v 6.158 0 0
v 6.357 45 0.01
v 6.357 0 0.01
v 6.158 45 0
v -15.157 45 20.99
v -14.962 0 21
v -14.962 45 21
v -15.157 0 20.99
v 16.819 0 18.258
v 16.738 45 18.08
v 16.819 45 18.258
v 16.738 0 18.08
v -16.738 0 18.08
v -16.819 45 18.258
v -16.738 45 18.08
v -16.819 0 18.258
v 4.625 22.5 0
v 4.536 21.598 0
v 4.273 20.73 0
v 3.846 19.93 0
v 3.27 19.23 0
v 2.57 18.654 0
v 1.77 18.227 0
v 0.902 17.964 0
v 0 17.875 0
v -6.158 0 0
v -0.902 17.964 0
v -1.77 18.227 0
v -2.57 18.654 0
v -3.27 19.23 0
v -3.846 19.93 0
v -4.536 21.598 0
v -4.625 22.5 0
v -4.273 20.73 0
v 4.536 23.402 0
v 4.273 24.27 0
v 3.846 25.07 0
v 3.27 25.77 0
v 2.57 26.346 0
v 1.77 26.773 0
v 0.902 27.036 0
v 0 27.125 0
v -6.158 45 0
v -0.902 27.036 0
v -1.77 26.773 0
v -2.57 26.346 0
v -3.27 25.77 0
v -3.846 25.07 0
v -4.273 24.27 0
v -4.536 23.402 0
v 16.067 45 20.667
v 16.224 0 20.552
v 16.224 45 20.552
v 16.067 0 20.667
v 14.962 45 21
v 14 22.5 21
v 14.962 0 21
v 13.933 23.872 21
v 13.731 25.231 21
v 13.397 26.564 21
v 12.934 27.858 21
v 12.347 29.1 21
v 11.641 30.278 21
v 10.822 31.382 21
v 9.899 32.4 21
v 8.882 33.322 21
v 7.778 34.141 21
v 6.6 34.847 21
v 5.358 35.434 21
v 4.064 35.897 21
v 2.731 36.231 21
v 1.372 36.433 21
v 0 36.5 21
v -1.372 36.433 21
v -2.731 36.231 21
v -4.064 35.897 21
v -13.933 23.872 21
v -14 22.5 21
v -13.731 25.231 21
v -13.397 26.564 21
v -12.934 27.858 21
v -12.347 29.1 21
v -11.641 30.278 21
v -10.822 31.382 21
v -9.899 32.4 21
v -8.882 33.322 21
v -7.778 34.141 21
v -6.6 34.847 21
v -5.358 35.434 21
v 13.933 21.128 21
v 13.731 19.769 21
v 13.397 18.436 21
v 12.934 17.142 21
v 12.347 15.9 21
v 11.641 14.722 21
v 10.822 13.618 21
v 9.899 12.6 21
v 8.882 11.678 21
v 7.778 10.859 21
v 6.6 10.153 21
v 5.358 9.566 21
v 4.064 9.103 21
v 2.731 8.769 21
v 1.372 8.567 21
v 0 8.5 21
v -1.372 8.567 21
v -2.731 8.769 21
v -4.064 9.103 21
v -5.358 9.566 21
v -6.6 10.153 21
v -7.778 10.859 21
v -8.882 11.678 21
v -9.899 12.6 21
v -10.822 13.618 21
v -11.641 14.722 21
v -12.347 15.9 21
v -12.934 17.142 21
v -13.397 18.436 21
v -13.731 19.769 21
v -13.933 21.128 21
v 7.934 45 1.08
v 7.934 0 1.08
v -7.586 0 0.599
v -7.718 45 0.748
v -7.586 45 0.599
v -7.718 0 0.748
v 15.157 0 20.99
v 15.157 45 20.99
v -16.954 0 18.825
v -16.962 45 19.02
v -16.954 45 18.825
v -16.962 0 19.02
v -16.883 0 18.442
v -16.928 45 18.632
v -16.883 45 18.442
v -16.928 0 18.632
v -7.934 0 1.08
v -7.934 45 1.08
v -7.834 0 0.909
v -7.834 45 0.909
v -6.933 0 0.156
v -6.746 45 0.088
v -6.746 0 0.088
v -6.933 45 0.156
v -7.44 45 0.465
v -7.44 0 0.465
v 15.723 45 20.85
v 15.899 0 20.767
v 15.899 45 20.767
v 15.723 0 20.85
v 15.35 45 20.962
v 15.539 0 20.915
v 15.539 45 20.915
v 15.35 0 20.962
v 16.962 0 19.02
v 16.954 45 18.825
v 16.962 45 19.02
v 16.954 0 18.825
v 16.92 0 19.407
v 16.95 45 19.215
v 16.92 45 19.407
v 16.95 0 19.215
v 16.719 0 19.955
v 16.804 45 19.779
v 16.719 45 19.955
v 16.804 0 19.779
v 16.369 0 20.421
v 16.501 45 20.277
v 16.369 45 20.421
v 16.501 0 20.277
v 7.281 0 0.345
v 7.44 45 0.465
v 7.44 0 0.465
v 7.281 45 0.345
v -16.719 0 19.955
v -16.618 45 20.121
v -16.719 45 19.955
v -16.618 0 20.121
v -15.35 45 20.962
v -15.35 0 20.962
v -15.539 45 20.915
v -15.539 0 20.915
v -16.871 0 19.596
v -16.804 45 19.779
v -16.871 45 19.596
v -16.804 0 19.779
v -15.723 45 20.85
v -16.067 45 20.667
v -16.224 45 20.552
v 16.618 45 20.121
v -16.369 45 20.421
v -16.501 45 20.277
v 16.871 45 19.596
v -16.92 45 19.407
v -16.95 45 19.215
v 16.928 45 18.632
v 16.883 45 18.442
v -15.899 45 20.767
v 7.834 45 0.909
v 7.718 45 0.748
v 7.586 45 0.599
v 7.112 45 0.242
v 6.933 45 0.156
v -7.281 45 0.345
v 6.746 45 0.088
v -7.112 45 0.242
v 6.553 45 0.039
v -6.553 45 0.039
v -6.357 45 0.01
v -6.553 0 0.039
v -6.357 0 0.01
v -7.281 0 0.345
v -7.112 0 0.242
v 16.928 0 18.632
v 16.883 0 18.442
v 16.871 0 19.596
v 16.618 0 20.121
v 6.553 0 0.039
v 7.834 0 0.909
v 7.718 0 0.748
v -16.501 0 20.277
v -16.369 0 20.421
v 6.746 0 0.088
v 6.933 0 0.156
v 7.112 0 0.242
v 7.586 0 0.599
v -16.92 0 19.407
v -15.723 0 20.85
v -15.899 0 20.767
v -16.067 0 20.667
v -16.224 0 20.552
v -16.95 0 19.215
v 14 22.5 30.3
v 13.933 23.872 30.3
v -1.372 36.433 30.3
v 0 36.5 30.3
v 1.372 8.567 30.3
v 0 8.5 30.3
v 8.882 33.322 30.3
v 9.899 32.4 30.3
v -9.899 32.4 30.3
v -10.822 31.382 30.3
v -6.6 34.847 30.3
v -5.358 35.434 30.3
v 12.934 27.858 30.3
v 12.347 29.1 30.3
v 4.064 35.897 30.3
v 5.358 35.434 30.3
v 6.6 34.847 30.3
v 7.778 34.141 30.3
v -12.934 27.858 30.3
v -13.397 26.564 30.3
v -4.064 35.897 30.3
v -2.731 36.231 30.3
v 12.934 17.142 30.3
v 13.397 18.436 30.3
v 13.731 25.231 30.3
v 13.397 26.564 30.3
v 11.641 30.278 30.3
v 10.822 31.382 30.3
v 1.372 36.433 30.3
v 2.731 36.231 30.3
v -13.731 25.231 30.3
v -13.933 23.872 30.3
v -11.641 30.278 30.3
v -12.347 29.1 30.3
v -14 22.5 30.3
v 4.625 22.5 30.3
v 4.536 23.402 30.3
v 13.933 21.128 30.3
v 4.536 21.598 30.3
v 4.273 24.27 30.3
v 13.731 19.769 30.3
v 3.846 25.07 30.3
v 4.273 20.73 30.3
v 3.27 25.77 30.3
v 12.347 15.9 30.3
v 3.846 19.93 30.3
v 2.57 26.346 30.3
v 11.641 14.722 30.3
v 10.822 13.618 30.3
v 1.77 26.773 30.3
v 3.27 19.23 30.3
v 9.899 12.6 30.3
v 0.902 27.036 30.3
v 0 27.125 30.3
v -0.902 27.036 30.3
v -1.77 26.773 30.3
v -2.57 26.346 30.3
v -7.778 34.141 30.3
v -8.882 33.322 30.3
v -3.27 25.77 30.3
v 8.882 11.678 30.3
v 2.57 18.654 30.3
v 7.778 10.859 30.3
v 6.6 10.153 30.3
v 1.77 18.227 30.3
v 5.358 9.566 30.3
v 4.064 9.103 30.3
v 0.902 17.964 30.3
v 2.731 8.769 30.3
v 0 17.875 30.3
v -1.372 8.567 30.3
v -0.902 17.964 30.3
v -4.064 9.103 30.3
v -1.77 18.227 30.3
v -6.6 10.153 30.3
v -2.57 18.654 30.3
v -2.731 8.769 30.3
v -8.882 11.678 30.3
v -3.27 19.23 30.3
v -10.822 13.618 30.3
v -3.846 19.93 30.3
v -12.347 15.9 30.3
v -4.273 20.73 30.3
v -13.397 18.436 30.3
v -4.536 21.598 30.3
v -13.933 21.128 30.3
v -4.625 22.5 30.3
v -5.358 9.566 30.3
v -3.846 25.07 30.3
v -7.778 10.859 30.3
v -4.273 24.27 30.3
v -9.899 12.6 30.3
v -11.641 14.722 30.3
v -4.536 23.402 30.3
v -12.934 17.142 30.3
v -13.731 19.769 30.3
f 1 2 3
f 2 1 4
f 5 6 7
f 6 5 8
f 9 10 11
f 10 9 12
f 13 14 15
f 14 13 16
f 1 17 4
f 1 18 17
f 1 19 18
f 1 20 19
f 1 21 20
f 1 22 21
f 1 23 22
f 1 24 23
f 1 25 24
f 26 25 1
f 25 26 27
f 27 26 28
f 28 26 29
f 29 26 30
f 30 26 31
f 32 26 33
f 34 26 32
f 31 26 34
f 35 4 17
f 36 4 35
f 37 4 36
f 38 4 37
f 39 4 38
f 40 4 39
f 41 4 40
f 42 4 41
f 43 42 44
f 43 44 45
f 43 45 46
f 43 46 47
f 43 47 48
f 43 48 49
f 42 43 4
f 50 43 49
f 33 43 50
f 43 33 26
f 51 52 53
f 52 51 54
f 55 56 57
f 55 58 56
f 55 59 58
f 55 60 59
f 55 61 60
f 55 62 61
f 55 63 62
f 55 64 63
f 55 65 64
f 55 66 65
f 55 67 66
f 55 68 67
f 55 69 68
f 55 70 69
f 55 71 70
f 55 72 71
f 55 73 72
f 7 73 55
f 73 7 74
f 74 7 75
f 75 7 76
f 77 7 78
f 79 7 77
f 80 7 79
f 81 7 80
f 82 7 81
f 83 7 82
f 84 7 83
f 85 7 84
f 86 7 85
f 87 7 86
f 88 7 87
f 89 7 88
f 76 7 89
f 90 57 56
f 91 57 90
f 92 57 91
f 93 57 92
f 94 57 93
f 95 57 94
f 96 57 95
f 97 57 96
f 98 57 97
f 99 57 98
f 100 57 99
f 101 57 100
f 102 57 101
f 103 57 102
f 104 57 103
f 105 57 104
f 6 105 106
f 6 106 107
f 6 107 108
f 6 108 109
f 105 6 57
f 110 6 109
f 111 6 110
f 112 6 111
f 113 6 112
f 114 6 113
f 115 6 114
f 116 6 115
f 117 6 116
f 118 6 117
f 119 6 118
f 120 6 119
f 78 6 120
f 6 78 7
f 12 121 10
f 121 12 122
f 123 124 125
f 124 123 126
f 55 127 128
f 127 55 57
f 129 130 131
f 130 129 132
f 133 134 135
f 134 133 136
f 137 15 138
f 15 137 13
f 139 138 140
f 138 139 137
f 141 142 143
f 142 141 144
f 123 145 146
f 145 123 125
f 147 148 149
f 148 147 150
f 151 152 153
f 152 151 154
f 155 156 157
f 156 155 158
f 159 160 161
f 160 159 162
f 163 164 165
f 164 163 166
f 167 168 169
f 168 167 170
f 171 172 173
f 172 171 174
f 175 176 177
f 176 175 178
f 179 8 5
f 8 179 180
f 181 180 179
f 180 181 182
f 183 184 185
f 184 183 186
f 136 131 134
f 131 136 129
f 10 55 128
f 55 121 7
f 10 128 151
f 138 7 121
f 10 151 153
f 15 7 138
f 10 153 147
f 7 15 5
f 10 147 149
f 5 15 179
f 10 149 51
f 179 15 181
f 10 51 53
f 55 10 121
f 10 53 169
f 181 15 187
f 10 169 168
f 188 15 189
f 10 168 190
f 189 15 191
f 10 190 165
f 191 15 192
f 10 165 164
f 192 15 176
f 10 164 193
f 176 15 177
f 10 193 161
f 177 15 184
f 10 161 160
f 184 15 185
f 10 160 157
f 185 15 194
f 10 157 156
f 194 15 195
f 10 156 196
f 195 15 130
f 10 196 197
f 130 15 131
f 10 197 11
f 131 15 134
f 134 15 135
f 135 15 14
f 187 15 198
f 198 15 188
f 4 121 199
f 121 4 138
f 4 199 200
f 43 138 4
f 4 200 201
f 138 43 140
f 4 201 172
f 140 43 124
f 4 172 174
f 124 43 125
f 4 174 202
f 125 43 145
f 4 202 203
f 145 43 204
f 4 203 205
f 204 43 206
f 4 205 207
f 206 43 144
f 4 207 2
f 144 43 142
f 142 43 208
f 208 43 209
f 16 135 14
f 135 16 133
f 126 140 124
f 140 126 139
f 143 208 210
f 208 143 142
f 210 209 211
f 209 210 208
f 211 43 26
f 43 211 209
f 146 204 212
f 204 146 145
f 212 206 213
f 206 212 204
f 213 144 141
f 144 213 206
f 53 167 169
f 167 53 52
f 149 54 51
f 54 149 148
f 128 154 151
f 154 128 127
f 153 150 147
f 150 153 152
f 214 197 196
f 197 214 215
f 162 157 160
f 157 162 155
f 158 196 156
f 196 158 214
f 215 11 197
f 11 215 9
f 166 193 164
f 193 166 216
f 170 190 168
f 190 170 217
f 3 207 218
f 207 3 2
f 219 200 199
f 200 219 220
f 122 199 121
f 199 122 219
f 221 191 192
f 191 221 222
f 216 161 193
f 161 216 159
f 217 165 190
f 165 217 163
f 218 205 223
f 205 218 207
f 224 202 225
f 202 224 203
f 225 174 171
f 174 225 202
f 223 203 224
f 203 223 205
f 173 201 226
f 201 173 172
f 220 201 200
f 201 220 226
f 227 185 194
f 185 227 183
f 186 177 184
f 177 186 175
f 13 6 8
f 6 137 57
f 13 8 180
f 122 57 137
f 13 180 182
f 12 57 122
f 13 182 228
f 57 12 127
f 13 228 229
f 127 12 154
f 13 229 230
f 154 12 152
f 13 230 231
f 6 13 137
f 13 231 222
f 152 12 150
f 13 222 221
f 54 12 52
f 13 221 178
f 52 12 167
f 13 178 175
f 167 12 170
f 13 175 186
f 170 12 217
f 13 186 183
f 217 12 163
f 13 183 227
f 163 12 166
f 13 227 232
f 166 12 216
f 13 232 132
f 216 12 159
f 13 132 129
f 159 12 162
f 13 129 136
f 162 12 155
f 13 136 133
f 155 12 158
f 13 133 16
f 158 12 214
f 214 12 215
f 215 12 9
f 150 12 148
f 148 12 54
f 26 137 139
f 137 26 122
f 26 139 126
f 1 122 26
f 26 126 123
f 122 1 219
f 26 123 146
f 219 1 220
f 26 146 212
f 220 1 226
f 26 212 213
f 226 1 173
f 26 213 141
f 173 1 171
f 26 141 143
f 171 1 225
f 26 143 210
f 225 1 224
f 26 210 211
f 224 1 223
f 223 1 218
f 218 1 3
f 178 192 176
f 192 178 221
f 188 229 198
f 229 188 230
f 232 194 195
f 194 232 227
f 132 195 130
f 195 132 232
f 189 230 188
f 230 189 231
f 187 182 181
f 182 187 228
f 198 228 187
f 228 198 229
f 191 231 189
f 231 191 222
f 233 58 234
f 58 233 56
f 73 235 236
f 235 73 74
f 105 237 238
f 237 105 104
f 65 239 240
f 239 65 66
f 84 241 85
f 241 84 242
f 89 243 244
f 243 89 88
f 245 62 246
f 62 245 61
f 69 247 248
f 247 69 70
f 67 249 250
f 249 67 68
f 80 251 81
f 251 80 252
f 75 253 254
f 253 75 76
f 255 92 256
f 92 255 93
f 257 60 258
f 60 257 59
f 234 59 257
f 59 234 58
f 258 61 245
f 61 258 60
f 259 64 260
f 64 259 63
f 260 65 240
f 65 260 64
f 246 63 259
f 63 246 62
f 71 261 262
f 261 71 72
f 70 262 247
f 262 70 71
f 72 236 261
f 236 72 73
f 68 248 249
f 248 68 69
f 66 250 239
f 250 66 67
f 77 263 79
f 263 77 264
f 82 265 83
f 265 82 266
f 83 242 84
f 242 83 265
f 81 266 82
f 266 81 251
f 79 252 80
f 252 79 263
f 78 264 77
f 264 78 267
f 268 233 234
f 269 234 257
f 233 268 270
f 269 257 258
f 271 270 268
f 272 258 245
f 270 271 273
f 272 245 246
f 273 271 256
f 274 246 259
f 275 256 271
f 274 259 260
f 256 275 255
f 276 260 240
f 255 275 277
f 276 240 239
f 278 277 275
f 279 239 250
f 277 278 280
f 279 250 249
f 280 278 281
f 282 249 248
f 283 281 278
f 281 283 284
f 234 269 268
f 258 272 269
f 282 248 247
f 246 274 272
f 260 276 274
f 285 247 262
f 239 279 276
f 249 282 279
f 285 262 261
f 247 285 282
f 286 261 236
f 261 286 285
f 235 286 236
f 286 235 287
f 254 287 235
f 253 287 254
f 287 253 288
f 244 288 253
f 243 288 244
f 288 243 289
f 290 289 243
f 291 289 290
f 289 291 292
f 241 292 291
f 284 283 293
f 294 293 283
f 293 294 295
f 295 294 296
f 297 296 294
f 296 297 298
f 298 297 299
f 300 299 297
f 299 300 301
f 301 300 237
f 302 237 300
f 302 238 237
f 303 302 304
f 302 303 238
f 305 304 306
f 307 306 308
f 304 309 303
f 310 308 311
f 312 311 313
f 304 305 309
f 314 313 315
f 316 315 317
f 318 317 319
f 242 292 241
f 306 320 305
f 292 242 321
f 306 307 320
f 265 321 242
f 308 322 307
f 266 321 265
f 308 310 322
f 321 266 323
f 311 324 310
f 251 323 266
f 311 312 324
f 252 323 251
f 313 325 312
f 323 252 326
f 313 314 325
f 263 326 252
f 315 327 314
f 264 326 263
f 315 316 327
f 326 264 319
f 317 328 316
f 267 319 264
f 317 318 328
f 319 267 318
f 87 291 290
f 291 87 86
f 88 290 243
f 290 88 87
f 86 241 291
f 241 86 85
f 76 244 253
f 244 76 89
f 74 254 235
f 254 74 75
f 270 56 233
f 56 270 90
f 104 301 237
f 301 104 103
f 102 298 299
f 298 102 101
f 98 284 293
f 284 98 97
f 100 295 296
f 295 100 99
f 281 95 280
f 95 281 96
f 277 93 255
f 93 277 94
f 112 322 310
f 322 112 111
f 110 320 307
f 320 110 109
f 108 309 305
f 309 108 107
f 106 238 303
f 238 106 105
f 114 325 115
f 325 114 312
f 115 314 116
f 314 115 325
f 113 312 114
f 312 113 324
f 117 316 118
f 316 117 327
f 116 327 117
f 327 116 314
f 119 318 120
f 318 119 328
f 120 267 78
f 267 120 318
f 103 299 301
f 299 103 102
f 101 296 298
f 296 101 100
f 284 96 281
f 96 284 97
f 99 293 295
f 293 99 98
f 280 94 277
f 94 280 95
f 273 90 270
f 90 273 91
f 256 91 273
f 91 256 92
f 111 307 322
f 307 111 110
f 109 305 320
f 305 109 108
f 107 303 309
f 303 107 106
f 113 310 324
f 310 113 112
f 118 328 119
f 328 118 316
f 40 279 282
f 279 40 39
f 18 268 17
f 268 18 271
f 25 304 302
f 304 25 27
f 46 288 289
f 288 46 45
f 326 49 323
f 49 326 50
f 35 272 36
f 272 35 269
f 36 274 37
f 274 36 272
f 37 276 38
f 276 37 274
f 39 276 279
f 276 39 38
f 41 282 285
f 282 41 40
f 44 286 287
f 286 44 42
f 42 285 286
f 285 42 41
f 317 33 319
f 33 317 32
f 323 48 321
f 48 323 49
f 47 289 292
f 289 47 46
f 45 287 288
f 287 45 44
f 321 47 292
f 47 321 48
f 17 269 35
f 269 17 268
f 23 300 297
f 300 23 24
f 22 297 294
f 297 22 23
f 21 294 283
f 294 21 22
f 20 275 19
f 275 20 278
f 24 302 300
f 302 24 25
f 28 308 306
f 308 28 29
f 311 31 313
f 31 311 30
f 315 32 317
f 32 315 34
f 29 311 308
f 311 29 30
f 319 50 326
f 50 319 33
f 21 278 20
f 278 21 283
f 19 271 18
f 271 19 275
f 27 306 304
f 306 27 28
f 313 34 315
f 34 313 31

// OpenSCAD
union() {
	difference() {
		union() {
			translate(v = [-29.7500000000, 45, 0]) {
				rotate(a = 90, v = [1, 0, 0]) {
					linear_extrude(height = 45) {
						polygon(points = [[13.0119918994, 18.0802915047], [12.9308572827, 18.2576439220], [12.8673823806, 18.4420555343], [12.8221707871, 18.6317727390], [12.7956524271, 18.8249914818], [12.7880794684, 19.0198744114], [12.7995239237, 19.2145683517], [12.8298769656, 19.4072219237], [12.8788499616, 19.5960031506], [12.9459772190, 19.7791168783], [13.0306204127, 19.9548218461], [13.1319746557, 20.1214472444], [13.2490761527, 20.2774086030], [13.3808113647, 20.4212228577], [13.5259275985, 20.5515224535], [13.6830449181, 20.6670683484], [13.8506692672, 20.7667617962], [14.0272066764, 20.8496547942], [14.2109784202, 20.9149590984], [14.4002369807, 20.9620537185], [14.5931826648, 20.9904908235], [14.7879807179, 21.0000000000], [44.7120192821, 21.0000000000], [44.9068173352, 20.9904908235], [45.0997630193, 20.9620537185], [45.2890215798, 20.9149590984], [45.4727933236, 20.8496547942], [45.6493307328, 20.7667617962], [45.8169550819, 20.6670683484], [45.9740724015, 20.5515224535], [46.1191886353, 20.4212228577], [46.2509238473, 20.2774086030], [46.3680253443, 20.1214472444], [46.4693795873, 19.9548218461], [46.5540227810, 19.7791168783], [46.6211500384, 19.5960031506], [46.6701230344, 19.4072219237], [46.7004760763, 19.2145683517], [46.7119205316, 19.0198744114], [46.7043475729, 18.8249914818], [46.6778292129, 18.6317727390], [46.6326176194, 18.4420555343], [46.5691427173, 18.2576439220], [46.4880081006, 18.0802915047], [37.6844366721, 1.0802915047], [37.5844447646, 0.9086547962], [37.4679201779, 0.7477835373], [37.3360123552, 0.5992646241], [37.1900224863, 0.4645631043], [37.0313906714, 0.3450077257], [36.8616817158, 0.2417778287], [36.6825696941, 0.1558917125], [36.4958214363, 0.0881965911], [36.3032790991, 0.0393602352], [36.1068419944, 0.0098643853], [35.9084478535, 0.0000000000], [23.5915521465, 0.0000000000], [23.3931580056, 0.0098643853], [23.1967209009, 0.0393602352], [23.0041785637, 0.0881965911], [22.8174303059, 0.1558917125], [22.6383182842, 0.2417778287], [22.4686093286, 0.3450077257], [22.3099775137, 0.4645631043], [22.1639876448, 0.5992646241], [22.0320798221, 0.7477835373], [21.9155552354, 0.9086547962], [21.8155633279, 1.0802915047], [13.0119918994, 18.0802915047]]);
					}
				}
			}
			translate(v = [0, 22.5000000000, 20]) {
				cylinder($fn = 64, h = 10.3000000000, r = 14);
			}
		}
		translate(v = [0, 22.5000000000, -1]) {
			cylinder($fn = 32, h = 33.5000000000, r = 4.6250000000);
		}
	}
}
